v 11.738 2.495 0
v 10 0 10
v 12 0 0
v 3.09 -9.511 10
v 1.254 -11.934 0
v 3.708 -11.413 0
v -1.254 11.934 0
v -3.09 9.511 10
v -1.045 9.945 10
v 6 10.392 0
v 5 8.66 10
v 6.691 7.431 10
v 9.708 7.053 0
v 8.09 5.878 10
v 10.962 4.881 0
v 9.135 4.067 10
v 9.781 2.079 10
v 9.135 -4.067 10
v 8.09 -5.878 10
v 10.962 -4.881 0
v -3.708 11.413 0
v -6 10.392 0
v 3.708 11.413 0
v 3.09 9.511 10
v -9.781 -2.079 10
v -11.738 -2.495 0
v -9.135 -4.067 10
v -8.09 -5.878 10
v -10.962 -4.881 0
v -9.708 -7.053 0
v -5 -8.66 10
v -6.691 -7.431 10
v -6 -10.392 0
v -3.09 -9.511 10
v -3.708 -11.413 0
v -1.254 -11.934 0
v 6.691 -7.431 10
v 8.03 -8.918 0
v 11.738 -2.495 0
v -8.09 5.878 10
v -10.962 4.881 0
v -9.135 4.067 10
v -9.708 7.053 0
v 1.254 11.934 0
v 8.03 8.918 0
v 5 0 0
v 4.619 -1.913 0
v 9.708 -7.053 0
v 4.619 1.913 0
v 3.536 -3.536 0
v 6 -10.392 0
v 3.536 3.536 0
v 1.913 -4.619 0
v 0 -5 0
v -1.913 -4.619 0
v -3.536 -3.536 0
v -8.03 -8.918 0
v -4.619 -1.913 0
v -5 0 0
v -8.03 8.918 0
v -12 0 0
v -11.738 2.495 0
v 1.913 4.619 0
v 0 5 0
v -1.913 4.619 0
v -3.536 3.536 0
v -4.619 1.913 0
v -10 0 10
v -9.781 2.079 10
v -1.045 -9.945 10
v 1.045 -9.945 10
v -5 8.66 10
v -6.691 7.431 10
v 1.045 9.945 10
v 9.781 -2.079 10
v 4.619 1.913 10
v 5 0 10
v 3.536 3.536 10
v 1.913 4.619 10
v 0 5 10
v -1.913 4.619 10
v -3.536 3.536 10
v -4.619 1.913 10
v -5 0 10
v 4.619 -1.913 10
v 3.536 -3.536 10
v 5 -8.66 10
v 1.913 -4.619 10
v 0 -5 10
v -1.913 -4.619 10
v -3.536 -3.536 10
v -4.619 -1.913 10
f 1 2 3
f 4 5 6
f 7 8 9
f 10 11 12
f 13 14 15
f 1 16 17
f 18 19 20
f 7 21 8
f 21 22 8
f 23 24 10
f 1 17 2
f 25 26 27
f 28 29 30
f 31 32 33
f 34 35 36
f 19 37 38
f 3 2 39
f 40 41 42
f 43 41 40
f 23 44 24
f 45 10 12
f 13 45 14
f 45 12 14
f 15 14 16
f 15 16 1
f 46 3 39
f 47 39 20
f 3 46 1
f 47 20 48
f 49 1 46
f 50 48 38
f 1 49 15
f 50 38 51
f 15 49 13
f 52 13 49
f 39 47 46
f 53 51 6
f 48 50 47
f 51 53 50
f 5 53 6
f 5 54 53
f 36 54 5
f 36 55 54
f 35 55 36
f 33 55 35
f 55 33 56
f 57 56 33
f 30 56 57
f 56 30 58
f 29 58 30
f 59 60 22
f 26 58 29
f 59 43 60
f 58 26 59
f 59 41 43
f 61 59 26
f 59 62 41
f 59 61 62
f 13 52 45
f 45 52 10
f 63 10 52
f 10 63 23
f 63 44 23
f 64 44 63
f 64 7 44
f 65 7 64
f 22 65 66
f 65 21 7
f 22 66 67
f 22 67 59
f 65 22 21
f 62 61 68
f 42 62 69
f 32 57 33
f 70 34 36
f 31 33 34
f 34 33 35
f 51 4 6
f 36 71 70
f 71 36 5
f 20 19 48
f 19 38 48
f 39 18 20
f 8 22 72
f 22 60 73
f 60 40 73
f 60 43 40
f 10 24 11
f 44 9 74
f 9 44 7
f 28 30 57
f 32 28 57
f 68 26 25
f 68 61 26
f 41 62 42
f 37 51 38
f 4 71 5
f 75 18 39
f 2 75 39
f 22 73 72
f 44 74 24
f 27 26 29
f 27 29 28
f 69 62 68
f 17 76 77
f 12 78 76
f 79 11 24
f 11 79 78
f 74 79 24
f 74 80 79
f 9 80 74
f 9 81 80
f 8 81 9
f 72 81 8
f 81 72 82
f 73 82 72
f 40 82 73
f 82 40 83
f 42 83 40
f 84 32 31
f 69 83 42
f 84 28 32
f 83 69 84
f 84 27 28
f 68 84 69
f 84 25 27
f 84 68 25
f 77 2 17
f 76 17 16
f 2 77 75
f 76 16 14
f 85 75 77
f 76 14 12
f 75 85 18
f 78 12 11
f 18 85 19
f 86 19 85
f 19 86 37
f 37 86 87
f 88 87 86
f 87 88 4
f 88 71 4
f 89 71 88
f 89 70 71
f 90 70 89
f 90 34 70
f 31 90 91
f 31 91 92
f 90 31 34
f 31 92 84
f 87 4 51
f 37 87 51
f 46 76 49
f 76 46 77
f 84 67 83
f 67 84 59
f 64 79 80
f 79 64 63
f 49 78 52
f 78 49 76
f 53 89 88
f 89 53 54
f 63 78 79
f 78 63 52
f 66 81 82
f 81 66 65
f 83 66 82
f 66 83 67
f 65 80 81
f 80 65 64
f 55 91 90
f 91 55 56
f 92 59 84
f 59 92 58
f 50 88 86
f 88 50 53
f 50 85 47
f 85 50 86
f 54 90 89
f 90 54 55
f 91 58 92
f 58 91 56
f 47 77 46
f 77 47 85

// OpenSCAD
difference() {
    cylinder(h=10, r1=24/2, r2=20/2, center=false);
    cylinder(h=10, r1=10/2, r2=10/2, center=false);
}
